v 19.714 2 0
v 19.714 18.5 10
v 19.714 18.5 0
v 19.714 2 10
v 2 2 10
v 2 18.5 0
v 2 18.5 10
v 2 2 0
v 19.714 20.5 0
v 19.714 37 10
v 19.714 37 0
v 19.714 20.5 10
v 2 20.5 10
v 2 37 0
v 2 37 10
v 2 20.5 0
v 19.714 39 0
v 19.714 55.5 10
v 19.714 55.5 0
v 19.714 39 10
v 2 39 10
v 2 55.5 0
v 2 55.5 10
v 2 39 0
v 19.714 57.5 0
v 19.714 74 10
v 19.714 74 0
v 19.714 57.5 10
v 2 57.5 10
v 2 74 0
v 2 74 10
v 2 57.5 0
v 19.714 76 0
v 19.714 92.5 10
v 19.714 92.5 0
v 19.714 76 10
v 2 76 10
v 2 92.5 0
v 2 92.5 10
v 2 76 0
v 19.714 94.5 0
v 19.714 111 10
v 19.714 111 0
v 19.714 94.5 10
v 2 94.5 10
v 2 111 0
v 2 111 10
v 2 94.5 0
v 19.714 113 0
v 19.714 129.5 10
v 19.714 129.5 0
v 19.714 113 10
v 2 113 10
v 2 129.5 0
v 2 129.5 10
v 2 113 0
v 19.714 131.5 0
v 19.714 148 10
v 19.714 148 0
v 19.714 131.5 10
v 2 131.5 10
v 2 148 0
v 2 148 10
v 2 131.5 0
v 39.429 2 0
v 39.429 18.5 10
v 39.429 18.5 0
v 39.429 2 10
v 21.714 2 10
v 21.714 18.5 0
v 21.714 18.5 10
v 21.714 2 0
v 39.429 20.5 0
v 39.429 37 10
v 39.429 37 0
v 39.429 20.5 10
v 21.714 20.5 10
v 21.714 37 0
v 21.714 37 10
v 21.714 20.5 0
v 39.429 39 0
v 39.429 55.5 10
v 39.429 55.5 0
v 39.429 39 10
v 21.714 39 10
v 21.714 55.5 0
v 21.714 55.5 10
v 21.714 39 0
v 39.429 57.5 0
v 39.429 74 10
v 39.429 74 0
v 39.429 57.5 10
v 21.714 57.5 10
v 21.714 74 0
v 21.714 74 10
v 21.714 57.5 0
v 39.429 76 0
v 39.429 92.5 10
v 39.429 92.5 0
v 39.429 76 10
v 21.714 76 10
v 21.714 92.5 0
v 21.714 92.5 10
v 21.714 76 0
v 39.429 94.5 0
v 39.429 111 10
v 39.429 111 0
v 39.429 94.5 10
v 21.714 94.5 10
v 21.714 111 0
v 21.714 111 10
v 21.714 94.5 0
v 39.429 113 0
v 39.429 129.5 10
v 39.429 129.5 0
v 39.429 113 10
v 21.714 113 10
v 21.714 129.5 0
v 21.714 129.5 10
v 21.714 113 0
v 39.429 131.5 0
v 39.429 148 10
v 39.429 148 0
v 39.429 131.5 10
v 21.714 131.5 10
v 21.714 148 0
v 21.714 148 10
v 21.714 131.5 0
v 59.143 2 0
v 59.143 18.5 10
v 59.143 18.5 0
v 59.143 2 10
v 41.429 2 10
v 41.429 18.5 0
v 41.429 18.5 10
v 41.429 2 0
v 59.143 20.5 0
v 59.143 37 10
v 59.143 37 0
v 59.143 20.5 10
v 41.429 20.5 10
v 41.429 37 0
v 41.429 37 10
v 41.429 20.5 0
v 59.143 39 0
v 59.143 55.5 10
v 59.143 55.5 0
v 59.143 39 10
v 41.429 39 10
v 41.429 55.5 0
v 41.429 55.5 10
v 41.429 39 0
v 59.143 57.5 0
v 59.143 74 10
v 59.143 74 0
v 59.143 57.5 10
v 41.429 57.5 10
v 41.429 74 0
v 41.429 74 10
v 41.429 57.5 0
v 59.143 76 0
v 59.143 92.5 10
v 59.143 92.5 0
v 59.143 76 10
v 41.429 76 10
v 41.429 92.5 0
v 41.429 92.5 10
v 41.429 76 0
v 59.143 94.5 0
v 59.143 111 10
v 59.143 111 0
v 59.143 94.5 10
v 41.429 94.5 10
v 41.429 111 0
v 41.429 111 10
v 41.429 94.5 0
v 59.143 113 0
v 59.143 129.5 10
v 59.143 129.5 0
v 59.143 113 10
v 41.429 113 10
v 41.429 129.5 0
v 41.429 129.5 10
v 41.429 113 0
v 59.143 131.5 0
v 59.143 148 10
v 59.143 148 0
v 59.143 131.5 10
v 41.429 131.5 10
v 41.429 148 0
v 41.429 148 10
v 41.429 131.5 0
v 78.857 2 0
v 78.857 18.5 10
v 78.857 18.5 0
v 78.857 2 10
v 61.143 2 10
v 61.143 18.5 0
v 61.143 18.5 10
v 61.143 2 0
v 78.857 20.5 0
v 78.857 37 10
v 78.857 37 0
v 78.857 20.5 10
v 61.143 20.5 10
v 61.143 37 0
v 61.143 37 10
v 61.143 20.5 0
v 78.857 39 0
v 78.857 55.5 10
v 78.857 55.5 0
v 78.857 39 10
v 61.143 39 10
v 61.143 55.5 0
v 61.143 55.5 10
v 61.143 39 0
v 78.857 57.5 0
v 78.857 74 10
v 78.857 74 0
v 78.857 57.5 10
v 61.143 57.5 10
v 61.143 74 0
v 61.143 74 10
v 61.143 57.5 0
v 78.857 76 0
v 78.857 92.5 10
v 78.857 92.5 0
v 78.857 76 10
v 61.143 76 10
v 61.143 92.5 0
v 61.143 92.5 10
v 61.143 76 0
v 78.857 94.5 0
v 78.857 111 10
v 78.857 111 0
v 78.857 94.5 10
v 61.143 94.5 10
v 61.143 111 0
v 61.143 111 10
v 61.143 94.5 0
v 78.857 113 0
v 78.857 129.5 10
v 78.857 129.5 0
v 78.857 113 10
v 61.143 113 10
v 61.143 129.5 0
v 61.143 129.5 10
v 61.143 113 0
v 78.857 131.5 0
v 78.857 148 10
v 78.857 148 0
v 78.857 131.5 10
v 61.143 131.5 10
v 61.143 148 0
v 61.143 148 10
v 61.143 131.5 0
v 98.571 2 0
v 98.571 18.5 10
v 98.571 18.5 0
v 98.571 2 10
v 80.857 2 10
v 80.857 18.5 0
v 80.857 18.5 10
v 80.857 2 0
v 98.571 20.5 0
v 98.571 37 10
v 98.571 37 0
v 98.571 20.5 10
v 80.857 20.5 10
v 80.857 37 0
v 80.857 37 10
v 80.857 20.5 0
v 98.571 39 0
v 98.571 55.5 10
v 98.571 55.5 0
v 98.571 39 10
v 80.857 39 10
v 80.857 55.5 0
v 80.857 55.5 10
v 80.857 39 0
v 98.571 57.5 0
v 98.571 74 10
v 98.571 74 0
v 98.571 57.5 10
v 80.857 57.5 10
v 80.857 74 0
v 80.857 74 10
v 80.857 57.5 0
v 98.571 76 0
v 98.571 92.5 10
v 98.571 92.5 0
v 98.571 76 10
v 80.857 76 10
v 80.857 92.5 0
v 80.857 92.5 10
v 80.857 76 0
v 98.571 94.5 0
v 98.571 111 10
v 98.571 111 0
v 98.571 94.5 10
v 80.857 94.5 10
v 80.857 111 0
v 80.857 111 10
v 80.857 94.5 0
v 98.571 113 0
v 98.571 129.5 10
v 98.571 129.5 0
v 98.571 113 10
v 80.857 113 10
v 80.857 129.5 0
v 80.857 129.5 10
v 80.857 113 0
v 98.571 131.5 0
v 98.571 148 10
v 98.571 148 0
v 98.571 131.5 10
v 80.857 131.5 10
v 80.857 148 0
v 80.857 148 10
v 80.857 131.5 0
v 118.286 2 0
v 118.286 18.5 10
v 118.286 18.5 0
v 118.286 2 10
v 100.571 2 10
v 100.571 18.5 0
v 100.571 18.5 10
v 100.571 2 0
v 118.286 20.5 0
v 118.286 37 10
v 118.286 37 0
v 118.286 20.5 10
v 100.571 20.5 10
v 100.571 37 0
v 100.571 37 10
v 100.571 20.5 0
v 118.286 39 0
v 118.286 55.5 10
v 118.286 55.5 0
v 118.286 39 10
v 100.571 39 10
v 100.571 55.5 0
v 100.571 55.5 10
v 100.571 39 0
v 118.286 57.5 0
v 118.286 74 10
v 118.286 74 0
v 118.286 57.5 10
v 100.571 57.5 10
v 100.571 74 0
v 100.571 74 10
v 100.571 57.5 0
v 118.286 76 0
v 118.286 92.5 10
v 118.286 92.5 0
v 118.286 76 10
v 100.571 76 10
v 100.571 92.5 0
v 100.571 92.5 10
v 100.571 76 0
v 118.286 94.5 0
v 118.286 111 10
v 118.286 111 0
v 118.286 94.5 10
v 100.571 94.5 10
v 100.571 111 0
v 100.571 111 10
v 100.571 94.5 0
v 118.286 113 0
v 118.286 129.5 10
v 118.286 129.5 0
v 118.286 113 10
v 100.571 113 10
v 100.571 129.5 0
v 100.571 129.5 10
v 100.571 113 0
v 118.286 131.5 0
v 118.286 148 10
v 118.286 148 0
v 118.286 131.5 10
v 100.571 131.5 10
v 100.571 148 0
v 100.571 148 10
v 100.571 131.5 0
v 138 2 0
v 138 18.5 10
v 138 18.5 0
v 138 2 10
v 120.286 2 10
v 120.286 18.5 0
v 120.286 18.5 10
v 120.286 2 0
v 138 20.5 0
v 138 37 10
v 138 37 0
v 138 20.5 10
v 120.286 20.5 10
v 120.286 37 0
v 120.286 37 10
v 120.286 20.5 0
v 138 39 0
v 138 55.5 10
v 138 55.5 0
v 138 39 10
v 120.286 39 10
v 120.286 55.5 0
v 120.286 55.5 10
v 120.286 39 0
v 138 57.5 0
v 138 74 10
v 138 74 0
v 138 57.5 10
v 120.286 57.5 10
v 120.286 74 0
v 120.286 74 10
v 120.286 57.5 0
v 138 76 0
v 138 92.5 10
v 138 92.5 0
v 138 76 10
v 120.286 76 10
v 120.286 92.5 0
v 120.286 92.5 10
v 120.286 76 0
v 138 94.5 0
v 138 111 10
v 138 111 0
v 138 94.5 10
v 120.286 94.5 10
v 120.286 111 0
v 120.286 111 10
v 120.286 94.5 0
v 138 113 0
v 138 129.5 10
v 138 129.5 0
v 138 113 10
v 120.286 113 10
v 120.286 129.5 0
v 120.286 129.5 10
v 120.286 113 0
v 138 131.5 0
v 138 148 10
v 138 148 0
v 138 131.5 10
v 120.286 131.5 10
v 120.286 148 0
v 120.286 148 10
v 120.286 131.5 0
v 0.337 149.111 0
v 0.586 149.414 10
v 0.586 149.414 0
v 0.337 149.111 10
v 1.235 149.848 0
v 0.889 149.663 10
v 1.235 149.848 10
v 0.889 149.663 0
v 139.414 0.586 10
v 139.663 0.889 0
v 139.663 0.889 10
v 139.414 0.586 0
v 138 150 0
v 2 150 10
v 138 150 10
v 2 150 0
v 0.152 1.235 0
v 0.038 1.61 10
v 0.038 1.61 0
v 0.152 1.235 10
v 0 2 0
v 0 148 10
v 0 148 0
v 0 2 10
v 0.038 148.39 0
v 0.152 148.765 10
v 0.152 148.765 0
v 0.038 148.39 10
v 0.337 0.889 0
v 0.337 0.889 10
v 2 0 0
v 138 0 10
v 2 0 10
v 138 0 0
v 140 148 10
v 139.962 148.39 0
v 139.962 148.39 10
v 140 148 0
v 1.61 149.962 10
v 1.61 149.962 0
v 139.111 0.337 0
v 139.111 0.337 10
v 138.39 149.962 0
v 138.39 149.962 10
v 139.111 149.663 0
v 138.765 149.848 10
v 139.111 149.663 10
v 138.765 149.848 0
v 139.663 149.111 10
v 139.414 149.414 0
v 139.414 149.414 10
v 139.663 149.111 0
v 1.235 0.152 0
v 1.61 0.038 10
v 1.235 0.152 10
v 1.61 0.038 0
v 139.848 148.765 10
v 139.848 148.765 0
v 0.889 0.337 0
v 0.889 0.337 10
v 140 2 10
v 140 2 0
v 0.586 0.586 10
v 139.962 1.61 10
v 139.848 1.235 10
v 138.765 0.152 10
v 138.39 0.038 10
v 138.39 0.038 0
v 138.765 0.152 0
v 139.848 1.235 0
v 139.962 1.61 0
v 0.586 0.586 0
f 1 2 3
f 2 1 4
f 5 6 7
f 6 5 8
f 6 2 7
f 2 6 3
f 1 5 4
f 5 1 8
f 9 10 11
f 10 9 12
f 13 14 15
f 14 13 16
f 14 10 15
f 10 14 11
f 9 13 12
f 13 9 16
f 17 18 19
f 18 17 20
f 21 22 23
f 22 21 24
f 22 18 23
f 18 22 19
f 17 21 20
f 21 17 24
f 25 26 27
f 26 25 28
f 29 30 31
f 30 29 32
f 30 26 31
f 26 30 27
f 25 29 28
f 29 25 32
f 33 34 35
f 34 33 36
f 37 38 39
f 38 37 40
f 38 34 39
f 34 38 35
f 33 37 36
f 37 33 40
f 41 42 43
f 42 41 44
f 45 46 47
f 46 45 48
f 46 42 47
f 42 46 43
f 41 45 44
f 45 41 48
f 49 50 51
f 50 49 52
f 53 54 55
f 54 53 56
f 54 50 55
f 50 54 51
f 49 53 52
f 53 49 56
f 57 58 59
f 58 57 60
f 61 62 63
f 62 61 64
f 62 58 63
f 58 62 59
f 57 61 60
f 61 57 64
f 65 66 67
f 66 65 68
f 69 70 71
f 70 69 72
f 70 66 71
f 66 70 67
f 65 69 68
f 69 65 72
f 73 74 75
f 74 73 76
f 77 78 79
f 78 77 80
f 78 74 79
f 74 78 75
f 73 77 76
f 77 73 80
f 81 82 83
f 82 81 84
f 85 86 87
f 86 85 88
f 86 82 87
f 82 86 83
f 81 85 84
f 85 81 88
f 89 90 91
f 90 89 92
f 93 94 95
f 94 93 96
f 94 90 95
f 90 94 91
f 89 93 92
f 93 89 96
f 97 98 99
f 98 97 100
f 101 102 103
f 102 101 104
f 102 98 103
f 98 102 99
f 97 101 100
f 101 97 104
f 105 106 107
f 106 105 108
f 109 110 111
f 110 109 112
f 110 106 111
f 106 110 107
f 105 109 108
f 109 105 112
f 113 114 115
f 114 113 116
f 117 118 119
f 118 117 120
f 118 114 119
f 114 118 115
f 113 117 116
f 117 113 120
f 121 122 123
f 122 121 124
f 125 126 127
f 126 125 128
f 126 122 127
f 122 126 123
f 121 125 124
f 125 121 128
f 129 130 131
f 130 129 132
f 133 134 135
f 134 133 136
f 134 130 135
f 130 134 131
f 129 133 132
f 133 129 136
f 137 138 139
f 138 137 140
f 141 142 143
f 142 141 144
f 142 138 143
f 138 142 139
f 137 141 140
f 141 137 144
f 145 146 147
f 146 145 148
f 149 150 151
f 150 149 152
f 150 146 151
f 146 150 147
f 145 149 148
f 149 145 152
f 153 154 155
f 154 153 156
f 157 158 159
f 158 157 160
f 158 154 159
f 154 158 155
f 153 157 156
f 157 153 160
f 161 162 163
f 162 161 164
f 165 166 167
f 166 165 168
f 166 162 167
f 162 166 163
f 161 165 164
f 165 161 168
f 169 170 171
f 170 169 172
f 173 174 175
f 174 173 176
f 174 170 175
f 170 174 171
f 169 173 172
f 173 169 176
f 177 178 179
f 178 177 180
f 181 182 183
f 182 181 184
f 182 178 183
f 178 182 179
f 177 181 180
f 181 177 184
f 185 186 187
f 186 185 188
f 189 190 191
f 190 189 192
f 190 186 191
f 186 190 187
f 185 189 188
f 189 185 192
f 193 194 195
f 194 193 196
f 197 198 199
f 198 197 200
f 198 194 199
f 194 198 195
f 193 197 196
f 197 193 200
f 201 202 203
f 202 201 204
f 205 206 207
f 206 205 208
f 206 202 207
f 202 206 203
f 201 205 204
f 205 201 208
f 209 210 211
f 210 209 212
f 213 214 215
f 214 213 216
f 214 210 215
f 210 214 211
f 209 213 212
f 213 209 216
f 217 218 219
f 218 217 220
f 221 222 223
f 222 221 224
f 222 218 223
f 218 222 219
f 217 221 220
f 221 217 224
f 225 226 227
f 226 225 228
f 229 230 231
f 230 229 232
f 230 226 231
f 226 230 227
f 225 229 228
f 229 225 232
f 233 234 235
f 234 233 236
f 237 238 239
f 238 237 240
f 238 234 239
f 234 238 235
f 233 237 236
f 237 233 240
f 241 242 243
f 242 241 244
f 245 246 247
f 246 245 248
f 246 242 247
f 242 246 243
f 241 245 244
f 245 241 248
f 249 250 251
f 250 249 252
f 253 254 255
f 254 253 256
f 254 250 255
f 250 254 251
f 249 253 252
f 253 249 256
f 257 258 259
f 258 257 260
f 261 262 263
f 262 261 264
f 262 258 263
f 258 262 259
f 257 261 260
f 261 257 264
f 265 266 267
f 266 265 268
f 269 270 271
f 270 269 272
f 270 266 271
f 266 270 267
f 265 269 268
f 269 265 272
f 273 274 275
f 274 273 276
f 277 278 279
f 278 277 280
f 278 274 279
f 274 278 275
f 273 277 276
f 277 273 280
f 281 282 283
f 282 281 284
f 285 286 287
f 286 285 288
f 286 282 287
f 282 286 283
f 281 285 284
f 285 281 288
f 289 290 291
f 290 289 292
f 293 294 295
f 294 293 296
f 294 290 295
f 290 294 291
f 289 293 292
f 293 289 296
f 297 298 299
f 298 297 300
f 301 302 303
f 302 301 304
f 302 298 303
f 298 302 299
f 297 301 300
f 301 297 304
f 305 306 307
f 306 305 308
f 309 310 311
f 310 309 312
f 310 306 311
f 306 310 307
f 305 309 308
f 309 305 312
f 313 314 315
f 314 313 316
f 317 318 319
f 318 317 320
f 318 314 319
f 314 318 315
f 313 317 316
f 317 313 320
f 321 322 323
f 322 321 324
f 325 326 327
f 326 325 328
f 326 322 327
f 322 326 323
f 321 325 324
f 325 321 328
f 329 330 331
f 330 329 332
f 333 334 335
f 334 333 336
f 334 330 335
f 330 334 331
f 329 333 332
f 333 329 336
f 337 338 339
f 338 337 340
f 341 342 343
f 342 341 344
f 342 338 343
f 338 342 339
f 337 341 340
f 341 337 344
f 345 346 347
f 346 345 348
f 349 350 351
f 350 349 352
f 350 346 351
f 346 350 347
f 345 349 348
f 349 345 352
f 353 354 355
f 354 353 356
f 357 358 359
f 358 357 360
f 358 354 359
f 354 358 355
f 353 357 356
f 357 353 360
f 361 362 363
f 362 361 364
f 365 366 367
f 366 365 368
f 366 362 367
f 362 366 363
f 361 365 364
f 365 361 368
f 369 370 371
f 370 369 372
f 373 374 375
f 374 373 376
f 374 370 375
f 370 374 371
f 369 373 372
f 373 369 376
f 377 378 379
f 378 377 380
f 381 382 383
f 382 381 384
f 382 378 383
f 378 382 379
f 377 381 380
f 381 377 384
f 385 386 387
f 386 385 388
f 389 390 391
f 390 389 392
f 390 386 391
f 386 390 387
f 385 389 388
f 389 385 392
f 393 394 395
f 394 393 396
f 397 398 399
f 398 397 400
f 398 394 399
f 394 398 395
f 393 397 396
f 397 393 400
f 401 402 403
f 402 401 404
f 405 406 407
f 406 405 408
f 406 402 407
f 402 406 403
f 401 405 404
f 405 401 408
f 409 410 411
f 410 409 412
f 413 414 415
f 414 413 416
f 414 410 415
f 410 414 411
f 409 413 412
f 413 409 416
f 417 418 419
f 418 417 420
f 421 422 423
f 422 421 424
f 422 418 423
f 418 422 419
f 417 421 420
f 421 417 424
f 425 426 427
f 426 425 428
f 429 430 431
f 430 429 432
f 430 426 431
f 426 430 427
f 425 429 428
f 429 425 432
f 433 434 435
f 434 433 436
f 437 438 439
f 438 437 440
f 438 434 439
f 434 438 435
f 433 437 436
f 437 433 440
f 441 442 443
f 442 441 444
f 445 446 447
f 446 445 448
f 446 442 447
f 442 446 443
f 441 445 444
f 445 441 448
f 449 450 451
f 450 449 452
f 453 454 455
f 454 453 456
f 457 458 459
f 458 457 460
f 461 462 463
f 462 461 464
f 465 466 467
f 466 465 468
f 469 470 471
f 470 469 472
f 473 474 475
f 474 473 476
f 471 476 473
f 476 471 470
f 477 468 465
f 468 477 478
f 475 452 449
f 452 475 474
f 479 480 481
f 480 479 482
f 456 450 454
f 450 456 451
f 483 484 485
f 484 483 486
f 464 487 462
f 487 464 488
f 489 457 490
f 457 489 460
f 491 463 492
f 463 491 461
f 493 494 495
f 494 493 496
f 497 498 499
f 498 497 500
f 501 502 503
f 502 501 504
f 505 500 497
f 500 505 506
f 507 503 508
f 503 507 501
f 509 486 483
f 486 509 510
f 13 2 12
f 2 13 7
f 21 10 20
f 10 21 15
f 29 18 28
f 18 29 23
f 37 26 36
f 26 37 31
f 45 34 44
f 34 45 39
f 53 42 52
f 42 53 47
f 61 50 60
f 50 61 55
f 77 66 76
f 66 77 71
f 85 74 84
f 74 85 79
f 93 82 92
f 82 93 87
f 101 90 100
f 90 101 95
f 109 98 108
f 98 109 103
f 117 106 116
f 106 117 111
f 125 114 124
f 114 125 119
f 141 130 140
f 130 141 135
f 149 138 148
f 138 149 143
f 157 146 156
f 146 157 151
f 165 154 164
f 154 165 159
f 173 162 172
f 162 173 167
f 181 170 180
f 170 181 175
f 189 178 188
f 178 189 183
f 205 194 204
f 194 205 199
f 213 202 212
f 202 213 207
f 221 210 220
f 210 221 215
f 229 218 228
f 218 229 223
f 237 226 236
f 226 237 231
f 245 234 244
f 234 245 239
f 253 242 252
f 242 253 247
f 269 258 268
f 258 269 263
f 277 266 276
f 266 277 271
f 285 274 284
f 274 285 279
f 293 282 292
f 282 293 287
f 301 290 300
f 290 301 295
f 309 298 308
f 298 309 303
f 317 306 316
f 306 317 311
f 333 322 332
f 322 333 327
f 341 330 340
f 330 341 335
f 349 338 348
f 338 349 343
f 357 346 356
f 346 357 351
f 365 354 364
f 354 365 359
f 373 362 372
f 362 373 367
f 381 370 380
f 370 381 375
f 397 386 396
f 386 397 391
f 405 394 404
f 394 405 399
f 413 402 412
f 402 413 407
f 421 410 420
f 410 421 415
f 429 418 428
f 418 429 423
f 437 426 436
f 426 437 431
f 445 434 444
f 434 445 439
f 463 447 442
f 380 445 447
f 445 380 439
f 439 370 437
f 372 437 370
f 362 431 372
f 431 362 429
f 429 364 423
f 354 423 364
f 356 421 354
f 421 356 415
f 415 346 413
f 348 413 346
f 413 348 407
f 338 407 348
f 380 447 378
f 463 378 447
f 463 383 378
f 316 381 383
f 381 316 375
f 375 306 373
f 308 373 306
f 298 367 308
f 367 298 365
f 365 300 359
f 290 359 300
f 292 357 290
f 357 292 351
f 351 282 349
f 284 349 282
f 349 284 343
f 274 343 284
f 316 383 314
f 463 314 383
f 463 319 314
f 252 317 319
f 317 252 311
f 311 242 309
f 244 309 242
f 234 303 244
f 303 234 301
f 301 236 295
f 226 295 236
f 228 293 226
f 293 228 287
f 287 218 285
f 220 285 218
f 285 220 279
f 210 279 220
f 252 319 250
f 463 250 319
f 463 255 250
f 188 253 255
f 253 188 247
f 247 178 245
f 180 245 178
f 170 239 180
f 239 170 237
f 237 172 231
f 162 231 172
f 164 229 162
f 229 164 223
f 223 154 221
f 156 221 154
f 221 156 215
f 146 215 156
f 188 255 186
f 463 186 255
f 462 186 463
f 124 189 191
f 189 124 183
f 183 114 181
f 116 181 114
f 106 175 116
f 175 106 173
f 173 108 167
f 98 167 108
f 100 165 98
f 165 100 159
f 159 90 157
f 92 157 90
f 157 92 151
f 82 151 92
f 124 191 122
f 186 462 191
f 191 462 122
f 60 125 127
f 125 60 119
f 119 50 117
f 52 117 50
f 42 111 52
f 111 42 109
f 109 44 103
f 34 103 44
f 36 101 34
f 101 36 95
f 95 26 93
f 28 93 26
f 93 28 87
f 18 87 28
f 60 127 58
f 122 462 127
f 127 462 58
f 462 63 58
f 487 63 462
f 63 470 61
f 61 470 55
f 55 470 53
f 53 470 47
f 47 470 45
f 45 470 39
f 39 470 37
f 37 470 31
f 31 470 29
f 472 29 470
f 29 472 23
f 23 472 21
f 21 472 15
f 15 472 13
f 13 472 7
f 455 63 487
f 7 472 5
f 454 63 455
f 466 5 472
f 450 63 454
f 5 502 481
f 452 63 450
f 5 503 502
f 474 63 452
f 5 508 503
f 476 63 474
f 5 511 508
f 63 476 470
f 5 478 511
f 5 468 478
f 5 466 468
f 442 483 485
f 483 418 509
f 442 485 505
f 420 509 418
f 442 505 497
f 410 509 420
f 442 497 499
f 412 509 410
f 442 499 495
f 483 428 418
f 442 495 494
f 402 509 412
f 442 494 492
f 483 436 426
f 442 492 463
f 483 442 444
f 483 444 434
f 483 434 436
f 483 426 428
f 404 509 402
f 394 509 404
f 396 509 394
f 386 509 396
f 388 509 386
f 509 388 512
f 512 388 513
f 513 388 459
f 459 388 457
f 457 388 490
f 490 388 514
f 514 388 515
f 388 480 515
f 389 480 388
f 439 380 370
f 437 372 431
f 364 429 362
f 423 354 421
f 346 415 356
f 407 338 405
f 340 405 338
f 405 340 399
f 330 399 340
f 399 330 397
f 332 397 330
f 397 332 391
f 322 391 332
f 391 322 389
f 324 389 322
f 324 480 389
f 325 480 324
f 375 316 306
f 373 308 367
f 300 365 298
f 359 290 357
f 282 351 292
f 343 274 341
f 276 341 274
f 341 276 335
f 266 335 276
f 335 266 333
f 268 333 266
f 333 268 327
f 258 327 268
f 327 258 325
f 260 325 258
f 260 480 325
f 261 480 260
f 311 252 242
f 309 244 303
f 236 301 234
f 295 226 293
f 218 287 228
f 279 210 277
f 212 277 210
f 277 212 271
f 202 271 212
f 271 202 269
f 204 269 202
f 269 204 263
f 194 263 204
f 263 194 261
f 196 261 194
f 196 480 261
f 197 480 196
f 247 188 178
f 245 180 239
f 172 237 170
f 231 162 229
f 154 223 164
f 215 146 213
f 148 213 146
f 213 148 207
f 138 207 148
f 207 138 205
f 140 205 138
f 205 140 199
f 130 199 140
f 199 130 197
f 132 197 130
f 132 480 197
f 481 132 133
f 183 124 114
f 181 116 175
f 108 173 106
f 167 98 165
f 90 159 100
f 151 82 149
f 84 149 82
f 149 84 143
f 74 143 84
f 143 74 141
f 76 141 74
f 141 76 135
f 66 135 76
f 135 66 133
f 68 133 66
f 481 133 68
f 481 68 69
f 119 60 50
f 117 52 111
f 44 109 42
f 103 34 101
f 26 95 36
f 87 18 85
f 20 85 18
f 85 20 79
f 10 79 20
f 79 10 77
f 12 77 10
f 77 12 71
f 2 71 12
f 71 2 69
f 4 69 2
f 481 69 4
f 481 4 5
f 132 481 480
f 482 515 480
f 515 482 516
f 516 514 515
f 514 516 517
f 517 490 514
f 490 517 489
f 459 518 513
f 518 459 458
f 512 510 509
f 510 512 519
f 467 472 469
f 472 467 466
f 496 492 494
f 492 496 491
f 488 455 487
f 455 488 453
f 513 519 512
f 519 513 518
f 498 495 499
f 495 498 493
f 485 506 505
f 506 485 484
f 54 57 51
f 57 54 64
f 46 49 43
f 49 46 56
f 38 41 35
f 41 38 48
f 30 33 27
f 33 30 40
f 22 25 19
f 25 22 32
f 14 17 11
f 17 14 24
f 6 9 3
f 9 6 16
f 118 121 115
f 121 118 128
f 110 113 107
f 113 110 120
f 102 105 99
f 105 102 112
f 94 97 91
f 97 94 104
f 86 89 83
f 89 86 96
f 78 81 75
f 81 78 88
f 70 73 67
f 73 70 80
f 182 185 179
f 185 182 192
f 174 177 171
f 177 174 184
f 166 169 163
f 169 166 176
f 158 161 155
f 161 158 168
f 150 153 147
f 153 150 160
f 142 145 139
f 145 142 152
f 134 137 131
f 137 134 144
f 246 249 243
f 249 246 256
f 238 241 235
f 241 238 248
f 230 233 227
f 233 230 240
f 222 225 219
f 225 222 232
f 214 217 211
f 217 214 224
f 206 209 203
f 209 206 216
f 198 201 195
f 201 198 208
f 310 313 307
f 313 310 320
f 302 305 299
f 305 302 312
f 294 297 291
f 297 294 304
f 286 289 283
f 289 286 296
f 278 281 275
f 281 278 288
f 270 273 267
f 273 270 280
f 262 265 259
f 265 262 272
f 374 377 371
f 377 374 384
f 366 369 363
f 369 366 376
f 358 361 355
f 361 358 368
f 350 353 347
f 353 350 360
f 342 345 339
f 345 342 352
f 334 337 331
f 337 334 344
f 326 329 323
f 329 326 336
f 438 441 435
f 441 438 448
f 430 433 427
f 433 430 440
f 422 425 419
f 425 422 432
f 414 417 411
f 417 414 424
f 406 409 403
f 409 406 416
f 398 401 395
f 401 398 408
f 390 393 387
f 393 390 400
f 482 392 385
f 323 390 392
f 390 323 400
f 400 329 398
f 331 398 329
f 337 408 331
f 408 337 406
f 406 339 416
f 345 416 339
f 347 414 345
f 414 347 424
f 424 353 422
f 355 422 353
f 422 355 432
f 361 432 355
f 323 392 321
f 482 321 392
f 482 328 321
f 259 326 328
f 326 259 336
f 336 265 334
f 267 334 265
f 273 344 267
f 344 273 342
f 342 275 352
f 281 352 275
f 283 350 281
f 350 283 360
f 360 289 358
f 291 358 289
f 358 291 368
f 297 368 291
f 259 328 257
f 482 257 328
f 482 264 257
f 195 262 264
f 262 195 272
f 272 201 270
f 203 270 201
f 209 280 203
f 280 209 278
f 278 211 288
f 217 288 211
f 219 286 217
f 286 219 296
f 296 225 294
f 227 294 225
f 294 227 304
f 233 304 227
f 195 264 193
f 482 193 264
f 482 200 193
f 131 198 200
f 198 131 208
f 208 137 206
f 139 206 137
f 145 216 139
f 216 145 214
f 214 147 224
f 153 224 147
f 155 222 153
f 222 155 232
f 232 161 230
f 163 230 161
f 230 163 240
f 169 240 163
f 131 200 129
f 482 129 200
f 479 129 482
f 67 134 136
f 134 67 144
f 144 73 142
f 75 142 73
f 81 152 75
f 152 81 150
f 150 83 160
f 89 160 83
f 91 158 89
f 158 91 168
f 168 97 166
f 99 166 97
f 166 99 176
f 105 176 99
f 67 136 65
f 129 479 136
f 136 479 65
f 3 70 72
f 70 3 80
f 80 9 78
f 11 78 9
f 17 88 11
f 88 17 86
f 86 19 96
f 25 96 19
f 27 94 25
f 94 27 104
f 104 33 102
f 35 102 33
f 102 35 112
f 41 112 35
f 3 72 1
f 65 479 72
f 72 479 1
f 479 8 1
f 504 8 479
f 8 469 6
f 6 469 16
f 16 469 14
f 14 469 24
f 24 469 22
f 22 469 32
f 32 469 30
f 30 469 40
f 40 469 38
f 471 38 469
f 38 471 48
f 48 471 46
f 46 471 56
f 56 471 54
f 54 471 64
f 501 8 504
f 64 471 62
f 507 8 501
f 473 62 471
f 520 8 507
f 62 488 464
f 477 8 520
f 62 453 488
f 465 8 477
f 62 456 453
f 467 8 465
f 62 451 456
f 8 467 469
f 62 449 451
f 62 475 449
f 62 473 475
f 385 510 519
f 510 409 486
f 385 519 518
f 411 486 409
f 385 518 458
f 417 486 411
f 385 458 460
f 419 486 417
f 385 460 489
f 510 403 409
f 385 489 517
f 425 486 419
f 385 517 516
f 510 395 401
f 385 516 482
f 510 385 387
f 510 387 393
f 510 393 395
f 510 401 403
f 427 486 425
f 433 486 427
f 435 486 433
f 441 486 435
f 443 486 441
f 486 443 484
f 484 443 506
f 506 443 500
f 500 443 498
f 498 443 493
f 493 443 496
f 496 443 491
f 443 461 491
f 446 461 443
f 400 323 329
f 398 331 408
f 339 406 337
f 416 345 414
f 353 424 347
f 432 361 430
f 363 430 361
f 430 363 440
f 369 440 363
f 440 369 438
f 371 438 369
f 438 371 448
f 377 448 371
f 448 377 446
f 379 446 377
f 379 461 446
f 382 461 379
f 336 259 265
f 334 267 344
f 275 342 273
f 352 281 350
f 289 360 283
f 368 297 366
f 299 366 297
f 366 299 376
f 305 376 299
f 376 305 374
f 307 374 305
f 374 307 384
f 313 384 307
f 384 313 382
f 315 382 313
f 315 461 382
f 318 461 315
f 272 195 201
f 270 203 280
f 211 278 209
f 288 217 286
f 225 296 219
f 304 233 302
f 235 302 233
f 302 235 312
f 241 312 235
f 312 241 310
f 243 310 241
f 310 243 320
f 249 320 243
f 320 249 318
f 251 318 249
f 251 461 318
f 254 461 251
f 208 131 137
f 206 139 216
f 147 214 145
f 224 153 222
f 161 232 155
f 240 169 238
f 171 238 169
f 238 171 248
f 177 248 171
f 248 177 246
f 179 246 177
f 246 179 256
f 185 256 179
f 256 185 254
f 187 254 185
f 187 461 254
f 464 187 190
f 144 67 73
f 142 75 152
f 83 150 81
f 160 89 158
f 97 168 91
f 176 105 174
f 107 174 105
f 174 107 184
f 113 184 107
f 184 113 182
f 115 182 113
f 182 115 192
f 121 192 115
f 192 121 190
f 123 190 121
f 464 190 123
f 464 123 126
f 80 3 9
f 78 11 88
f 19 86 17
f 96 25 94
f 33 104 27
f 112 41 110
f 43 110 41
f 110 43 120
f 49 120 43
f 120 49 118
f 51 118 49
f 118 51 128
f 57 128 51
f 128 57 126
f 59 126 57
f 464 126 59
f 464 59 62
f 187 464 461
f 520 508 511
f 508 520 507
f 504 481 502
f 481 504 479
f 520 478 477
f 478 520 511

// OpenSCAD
// ============================================================================
//  Open grid 140 x 150 mm, ca. 10 mm dik, vakjes van ongeveer 20 mm
//  De verdeling wordt automatisch berekend: aantal vakken = round(maat / doel)
//  140 / 20 = 7 vakken  -> 20,00 mm hart-op-hart
//  150 / 20 = 7,5 -> 8   -> 18,75 mm hart-op-hart  (dichter bij vierkant dan 7 x 21,4)
//  Printer: FlashForge Adventurer 4 · PLA/PETG · 0.2 mm · plat, geen support
// ============================================================================

/* [Afmetingen] */
breedte   = 140;   // X
lengte    = 150;   // Y
dikte     = 10;    // hoogte van het grid
doel_vak  = 20;    // gewenste vakmaat (hart-op-hart)
wand      = 2;     // dikte van de binnenribben
rand      = 2;     // dikte van de buitenrand
hoek_r    = 2;     // afronding buitenhoeken

nx = max(1, round(breedte / doel_vak));
ny = max(1, round(lengte  / doel_vak));

// Openingen zo verdelen dat alle vakken even groot zijn
open_x = (breedte - 2*rand - (nx-1)*wand) / nx;
open_y = (lengte  - 2*rand - (ny-1)*wand) / ny;

echo(str("Verdeling: ", nx, " x ", ny, " vakken; opening ", open_x, " x ", open_y, " mm"));

module afgeronde_plaat(b, l, h, r) {
    hull() for (x=[r, b-r], y=[r, l-r]) translate([x, y, 0]) cylinder(h=h, r=r, $fn=32);
}

difference() {
    afgeronde_plaat(breedte, lengte, dikte, hoek_r);
    for (i=[0:nx-1], j=[0:ny-1])
        translate([rand + i*(open_x + wand), rand + j*(open_y + wand), -1])
            cube([open_x, open_y, dikte + 2]);
}
